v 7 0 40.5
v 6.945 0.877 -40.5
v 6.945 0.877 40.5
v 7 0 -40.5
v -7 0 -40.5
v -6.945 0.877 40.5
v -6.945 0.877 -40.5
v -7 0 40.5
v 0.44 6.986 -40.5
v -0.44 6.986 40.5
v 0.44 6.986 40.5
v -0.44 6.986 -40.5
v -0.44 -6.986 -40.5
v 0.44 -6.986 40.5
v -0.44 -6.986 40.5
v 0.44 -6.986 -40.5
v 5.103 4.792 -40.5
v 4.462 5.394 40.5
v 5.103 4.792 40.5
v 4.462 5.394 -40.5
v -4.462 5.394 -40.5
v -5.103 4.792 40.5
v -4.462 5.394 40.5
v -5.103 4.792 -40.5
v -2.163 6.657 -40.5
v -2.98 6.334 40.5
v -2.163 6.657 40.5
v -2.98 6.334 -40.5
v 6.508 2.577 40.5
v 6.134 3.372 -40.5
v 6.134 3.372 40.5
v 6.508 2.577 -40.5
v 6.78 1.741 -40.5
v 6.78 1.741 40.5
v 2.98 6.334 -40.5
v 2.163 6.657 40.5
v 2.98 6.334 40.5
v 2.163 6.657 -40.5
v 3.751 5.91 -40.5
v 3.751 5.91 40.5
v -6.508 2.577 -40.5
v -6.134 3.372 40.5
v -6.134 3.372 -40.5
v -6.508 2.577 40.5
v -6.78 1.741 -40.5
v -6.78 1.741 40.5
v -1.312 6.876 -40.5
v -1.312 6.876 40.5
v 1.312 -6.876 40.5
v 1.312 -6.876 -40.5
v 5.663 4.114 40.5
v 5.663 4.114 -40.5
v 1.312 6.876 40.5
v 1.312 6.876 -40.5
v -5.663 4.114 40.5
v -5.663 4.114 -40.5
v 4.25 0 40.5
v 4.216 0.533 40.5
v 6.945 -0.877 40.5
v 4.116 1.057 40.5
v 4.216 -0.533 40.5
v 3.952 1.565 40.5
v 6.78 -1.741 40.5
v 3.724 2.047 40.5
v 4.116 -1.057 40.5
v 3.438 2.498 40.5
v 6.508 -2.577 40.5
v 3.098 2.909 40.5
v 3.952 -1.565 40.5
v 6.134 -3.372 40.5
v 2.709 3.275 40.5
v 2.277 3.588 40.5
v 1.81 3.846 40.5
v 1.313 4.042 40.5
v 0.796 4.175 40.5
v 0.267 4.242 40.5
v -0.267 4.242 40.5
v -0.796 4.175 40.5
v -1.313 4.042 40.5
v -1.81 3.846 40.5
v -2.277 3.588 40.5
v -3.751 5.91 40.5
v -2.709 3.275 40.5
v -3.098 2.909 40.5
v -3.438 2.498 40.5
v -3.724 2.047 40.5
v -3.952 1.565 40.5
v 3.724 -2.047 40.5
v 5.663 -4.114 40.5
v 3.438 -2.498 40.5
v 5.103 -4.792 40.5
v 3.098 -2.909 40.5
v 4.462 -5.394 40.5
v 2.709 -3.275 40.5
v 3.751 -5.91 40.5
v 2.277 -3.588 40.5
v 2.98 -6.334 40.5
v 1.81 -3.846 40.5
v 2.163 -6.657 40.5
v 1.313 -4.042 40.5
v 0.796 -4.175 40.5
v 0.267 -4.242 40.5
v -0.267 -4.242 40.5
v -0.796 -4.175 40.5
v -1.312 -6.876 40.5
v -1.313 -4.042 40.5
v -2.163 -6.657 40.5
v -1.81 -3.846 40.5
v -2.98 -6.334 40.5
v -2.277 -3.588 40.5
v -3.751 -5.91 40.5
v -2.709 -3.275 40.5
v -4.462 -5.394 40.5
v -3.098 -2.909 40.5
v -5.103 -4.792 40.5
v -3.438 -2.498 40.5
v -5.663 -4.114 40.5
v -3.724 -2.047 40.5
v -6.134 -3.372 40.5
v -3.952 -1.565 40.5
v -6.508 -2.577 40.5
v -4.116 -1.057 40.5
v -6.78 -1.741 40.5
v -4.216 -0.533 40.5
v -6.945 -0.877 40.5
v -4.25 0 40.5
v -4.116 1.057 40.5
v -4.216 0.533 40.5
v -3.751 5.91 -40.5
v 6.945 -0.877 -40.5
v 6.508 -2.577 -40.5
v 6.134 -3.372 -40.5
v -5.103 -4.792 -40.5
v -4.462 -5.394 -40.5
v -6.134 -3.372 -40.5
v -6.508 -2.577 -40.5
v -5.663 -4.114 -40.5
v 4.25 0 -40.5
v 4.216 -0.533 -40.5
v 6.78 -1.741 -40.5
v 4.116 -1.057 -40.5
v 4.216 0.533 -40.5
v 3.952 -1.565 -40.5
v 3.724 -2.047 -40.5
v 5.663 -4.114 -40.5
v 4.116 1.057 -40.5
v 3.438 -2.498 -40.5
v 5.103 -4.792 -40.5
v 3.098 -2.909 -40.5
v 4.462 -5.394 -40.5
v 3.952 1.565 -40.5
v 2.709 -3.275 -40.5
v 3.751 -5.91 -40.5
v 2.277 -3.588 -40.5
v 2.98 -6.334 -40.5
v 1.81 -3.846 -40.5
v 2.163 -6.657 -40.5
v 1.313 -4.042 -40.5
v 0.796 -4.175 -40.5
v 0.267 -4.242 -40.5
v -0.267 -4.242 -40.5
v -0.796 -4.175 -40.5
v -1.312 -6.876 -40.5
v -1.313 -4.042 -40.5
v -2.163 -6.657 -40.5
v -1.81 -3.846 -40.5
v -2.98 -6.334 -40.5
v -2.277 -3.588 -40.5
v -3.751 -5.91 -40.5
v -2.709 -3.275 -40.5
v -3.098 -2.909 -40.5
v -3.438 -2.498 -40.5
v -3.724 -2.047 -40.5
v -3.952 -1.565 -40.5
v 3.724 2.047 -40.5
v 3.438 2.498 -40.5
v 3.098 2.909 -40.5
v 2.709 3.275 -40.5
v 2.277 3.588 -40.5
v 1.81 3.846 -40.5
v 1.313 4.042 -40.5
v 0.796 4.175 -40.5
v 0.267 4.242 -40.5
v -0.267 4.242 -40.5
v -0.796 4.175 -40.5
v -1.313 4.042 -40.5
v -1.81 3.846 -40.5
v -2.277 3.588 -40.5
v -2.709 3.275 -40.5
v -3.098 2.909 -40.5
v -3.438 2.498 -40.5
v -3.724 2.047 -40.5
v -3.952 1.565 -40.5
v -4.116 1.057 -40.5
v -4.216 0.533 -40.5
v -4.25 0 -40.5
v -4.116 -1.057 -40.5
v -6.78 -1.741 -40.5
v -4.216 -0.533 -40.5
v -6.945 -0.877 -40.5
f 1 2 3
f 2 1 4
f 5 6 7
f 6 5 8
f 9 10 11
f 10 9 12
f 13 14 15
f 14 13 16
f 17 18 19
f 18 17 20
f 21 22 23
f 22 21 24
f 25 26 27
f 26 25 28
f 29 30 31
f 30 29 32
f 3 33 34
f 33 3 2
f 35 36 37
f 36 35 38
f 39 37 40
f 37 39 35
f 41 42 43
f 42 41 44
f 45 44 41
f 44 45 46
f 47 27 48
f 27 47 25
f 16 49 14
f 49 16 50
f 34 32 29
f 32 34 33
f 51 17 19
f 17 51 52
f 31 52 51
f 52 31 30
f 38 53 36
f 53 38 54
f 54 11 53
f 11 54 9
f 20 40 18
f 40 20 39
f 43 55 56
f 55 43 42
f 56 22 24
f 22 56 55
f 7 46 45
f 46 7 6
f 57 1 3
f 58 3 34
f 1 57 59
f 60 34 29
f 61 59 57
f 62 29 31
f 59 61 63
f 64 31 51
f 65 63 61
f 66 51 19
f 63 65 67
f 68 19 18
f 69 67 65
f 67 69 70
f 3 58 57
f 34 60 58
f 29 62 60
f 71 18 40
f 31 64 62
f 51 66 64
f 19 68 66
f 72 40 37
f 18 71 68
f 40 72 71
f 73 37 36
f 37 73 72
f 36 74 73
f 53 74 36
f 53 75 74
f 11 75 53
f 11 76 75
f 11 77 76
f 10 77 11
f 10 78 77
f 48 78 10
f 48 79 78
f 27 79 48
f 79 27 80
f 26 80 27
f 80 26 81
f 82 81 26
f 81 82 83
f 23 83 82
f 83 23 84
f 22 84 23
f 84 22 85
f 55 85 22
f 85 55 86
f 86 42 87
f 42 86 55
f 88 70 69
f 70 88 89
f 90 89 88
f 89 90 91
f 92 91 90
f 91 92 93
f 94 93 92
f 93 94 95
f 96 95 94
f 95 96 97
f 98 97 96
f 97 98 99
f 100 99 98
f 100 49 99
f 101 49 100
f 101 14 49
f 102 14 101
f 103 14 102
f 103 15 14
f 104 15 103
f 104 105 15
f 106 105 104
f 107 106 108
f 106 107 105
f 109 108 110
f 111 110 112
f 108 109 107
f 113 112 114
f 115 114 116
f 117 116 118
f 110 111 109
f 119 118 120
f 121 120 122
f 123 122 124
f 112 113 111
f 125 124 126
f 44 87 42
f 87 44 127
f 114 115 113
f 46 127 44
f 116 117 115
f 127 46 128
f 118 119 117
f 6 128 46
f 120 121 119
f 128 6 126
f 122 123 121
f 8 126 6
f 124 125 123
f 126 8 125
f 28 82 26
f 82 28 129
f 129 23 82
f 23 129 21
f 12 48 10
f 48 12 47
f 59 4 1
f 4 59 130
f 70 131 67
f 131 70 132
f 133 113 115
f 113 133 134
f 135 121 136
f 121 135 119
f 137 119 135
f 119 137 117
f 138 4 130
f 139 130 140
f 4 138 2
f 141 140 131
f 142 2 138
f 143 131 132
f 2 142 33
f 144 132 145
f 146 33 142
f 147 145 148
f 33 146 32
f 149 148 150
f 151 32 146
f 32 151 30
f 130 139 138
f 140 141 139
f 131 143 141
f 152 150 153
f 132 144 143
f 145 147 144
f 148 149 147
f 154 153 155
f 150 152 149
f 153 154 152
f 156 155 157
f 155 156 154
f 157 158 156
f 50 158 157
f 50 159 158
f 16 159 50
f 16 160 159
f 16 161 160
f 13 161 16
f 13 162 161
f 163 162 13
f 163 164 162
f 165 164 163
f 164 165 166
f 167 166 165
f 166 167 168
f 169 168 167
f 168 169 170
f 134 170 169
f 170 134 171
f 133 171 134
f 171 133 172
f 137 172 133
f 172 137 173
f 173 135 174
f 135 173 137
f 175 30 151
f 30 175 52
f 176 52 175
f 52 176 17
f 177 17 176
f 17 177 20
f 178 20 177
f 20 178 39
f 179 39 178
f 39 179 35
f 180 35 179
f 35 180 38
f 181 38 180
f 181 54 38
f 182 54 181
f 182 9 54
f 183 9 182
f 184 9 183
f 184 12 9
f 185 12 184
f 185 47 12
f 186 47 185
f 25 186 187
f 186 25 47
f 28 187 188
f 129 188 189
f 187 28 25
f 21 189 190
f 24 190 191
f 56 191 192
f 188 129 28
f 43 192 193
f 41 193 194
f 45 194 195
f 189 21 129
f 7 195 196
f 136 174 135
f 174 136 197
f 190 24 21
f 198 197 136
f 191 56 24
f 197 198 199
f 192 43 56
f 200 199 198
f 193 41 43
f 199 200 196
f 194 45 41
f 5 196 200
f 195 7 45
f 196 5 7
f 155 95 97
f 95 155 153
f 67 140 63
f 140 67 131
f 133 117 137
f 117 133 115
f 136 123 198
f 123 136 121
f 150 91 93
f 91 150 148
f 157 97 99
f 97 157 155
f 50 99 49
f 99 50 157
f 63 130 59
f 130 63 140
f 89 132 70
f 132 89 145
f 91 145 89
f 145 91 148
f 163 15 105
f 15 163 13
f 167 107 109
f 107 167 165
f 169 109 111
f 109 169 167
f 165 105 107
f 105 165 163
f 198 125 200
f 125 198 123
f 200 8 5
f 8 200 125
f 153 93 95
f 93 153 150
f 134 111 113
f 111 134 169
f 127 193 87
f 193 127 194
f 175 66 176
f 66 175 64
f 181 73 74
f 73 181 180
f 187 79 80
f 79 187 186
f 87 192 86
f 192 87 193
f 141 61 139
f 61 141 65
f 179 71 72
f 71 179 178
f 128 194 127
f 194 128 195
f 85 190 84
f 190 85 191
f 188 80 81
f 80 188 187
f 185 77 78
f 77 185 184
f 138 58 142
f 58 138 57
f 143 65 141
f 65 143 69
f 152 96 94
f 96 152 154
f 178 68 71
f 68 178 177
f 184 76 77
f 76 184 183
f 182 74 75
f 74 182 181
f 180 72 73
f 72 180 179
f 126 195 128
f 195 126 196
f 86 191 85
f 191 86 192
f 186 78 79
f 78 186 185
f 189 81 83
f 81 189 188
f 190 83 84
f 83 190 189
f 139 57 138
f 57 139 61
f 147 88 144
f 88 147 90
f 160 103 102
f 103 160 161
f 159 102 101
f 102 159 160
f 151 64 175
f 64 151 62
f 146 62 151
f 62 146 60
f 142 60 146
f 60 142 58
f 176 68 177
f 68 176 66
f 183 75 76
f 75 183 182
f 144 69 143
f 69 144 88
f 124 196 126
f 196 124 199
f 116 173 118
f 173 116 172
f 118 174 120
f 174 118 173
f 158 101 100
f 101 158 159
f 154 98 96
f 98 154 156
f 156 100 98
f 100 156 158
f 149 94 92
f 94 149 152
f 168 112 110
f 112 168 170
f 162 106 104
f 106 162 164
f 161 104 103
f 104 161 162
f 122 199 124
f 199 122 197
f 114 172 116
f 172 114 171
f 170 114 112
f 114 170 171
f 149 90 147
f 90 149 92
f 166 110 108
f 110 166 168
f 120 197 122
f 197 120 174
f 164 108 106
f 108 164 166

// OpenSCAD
$fn = 50;


difference() {
	union() {
		translate(v = [0, 0, -40.5000000000]) {
			cylinder(h = 81, r = 7.0000000000);
		}
	}
	union() {
		translate(v = [0, 0, -100.0000000000]) {
			cylinder(h = 200, r = 4.2500000000);
		}
	}
}
